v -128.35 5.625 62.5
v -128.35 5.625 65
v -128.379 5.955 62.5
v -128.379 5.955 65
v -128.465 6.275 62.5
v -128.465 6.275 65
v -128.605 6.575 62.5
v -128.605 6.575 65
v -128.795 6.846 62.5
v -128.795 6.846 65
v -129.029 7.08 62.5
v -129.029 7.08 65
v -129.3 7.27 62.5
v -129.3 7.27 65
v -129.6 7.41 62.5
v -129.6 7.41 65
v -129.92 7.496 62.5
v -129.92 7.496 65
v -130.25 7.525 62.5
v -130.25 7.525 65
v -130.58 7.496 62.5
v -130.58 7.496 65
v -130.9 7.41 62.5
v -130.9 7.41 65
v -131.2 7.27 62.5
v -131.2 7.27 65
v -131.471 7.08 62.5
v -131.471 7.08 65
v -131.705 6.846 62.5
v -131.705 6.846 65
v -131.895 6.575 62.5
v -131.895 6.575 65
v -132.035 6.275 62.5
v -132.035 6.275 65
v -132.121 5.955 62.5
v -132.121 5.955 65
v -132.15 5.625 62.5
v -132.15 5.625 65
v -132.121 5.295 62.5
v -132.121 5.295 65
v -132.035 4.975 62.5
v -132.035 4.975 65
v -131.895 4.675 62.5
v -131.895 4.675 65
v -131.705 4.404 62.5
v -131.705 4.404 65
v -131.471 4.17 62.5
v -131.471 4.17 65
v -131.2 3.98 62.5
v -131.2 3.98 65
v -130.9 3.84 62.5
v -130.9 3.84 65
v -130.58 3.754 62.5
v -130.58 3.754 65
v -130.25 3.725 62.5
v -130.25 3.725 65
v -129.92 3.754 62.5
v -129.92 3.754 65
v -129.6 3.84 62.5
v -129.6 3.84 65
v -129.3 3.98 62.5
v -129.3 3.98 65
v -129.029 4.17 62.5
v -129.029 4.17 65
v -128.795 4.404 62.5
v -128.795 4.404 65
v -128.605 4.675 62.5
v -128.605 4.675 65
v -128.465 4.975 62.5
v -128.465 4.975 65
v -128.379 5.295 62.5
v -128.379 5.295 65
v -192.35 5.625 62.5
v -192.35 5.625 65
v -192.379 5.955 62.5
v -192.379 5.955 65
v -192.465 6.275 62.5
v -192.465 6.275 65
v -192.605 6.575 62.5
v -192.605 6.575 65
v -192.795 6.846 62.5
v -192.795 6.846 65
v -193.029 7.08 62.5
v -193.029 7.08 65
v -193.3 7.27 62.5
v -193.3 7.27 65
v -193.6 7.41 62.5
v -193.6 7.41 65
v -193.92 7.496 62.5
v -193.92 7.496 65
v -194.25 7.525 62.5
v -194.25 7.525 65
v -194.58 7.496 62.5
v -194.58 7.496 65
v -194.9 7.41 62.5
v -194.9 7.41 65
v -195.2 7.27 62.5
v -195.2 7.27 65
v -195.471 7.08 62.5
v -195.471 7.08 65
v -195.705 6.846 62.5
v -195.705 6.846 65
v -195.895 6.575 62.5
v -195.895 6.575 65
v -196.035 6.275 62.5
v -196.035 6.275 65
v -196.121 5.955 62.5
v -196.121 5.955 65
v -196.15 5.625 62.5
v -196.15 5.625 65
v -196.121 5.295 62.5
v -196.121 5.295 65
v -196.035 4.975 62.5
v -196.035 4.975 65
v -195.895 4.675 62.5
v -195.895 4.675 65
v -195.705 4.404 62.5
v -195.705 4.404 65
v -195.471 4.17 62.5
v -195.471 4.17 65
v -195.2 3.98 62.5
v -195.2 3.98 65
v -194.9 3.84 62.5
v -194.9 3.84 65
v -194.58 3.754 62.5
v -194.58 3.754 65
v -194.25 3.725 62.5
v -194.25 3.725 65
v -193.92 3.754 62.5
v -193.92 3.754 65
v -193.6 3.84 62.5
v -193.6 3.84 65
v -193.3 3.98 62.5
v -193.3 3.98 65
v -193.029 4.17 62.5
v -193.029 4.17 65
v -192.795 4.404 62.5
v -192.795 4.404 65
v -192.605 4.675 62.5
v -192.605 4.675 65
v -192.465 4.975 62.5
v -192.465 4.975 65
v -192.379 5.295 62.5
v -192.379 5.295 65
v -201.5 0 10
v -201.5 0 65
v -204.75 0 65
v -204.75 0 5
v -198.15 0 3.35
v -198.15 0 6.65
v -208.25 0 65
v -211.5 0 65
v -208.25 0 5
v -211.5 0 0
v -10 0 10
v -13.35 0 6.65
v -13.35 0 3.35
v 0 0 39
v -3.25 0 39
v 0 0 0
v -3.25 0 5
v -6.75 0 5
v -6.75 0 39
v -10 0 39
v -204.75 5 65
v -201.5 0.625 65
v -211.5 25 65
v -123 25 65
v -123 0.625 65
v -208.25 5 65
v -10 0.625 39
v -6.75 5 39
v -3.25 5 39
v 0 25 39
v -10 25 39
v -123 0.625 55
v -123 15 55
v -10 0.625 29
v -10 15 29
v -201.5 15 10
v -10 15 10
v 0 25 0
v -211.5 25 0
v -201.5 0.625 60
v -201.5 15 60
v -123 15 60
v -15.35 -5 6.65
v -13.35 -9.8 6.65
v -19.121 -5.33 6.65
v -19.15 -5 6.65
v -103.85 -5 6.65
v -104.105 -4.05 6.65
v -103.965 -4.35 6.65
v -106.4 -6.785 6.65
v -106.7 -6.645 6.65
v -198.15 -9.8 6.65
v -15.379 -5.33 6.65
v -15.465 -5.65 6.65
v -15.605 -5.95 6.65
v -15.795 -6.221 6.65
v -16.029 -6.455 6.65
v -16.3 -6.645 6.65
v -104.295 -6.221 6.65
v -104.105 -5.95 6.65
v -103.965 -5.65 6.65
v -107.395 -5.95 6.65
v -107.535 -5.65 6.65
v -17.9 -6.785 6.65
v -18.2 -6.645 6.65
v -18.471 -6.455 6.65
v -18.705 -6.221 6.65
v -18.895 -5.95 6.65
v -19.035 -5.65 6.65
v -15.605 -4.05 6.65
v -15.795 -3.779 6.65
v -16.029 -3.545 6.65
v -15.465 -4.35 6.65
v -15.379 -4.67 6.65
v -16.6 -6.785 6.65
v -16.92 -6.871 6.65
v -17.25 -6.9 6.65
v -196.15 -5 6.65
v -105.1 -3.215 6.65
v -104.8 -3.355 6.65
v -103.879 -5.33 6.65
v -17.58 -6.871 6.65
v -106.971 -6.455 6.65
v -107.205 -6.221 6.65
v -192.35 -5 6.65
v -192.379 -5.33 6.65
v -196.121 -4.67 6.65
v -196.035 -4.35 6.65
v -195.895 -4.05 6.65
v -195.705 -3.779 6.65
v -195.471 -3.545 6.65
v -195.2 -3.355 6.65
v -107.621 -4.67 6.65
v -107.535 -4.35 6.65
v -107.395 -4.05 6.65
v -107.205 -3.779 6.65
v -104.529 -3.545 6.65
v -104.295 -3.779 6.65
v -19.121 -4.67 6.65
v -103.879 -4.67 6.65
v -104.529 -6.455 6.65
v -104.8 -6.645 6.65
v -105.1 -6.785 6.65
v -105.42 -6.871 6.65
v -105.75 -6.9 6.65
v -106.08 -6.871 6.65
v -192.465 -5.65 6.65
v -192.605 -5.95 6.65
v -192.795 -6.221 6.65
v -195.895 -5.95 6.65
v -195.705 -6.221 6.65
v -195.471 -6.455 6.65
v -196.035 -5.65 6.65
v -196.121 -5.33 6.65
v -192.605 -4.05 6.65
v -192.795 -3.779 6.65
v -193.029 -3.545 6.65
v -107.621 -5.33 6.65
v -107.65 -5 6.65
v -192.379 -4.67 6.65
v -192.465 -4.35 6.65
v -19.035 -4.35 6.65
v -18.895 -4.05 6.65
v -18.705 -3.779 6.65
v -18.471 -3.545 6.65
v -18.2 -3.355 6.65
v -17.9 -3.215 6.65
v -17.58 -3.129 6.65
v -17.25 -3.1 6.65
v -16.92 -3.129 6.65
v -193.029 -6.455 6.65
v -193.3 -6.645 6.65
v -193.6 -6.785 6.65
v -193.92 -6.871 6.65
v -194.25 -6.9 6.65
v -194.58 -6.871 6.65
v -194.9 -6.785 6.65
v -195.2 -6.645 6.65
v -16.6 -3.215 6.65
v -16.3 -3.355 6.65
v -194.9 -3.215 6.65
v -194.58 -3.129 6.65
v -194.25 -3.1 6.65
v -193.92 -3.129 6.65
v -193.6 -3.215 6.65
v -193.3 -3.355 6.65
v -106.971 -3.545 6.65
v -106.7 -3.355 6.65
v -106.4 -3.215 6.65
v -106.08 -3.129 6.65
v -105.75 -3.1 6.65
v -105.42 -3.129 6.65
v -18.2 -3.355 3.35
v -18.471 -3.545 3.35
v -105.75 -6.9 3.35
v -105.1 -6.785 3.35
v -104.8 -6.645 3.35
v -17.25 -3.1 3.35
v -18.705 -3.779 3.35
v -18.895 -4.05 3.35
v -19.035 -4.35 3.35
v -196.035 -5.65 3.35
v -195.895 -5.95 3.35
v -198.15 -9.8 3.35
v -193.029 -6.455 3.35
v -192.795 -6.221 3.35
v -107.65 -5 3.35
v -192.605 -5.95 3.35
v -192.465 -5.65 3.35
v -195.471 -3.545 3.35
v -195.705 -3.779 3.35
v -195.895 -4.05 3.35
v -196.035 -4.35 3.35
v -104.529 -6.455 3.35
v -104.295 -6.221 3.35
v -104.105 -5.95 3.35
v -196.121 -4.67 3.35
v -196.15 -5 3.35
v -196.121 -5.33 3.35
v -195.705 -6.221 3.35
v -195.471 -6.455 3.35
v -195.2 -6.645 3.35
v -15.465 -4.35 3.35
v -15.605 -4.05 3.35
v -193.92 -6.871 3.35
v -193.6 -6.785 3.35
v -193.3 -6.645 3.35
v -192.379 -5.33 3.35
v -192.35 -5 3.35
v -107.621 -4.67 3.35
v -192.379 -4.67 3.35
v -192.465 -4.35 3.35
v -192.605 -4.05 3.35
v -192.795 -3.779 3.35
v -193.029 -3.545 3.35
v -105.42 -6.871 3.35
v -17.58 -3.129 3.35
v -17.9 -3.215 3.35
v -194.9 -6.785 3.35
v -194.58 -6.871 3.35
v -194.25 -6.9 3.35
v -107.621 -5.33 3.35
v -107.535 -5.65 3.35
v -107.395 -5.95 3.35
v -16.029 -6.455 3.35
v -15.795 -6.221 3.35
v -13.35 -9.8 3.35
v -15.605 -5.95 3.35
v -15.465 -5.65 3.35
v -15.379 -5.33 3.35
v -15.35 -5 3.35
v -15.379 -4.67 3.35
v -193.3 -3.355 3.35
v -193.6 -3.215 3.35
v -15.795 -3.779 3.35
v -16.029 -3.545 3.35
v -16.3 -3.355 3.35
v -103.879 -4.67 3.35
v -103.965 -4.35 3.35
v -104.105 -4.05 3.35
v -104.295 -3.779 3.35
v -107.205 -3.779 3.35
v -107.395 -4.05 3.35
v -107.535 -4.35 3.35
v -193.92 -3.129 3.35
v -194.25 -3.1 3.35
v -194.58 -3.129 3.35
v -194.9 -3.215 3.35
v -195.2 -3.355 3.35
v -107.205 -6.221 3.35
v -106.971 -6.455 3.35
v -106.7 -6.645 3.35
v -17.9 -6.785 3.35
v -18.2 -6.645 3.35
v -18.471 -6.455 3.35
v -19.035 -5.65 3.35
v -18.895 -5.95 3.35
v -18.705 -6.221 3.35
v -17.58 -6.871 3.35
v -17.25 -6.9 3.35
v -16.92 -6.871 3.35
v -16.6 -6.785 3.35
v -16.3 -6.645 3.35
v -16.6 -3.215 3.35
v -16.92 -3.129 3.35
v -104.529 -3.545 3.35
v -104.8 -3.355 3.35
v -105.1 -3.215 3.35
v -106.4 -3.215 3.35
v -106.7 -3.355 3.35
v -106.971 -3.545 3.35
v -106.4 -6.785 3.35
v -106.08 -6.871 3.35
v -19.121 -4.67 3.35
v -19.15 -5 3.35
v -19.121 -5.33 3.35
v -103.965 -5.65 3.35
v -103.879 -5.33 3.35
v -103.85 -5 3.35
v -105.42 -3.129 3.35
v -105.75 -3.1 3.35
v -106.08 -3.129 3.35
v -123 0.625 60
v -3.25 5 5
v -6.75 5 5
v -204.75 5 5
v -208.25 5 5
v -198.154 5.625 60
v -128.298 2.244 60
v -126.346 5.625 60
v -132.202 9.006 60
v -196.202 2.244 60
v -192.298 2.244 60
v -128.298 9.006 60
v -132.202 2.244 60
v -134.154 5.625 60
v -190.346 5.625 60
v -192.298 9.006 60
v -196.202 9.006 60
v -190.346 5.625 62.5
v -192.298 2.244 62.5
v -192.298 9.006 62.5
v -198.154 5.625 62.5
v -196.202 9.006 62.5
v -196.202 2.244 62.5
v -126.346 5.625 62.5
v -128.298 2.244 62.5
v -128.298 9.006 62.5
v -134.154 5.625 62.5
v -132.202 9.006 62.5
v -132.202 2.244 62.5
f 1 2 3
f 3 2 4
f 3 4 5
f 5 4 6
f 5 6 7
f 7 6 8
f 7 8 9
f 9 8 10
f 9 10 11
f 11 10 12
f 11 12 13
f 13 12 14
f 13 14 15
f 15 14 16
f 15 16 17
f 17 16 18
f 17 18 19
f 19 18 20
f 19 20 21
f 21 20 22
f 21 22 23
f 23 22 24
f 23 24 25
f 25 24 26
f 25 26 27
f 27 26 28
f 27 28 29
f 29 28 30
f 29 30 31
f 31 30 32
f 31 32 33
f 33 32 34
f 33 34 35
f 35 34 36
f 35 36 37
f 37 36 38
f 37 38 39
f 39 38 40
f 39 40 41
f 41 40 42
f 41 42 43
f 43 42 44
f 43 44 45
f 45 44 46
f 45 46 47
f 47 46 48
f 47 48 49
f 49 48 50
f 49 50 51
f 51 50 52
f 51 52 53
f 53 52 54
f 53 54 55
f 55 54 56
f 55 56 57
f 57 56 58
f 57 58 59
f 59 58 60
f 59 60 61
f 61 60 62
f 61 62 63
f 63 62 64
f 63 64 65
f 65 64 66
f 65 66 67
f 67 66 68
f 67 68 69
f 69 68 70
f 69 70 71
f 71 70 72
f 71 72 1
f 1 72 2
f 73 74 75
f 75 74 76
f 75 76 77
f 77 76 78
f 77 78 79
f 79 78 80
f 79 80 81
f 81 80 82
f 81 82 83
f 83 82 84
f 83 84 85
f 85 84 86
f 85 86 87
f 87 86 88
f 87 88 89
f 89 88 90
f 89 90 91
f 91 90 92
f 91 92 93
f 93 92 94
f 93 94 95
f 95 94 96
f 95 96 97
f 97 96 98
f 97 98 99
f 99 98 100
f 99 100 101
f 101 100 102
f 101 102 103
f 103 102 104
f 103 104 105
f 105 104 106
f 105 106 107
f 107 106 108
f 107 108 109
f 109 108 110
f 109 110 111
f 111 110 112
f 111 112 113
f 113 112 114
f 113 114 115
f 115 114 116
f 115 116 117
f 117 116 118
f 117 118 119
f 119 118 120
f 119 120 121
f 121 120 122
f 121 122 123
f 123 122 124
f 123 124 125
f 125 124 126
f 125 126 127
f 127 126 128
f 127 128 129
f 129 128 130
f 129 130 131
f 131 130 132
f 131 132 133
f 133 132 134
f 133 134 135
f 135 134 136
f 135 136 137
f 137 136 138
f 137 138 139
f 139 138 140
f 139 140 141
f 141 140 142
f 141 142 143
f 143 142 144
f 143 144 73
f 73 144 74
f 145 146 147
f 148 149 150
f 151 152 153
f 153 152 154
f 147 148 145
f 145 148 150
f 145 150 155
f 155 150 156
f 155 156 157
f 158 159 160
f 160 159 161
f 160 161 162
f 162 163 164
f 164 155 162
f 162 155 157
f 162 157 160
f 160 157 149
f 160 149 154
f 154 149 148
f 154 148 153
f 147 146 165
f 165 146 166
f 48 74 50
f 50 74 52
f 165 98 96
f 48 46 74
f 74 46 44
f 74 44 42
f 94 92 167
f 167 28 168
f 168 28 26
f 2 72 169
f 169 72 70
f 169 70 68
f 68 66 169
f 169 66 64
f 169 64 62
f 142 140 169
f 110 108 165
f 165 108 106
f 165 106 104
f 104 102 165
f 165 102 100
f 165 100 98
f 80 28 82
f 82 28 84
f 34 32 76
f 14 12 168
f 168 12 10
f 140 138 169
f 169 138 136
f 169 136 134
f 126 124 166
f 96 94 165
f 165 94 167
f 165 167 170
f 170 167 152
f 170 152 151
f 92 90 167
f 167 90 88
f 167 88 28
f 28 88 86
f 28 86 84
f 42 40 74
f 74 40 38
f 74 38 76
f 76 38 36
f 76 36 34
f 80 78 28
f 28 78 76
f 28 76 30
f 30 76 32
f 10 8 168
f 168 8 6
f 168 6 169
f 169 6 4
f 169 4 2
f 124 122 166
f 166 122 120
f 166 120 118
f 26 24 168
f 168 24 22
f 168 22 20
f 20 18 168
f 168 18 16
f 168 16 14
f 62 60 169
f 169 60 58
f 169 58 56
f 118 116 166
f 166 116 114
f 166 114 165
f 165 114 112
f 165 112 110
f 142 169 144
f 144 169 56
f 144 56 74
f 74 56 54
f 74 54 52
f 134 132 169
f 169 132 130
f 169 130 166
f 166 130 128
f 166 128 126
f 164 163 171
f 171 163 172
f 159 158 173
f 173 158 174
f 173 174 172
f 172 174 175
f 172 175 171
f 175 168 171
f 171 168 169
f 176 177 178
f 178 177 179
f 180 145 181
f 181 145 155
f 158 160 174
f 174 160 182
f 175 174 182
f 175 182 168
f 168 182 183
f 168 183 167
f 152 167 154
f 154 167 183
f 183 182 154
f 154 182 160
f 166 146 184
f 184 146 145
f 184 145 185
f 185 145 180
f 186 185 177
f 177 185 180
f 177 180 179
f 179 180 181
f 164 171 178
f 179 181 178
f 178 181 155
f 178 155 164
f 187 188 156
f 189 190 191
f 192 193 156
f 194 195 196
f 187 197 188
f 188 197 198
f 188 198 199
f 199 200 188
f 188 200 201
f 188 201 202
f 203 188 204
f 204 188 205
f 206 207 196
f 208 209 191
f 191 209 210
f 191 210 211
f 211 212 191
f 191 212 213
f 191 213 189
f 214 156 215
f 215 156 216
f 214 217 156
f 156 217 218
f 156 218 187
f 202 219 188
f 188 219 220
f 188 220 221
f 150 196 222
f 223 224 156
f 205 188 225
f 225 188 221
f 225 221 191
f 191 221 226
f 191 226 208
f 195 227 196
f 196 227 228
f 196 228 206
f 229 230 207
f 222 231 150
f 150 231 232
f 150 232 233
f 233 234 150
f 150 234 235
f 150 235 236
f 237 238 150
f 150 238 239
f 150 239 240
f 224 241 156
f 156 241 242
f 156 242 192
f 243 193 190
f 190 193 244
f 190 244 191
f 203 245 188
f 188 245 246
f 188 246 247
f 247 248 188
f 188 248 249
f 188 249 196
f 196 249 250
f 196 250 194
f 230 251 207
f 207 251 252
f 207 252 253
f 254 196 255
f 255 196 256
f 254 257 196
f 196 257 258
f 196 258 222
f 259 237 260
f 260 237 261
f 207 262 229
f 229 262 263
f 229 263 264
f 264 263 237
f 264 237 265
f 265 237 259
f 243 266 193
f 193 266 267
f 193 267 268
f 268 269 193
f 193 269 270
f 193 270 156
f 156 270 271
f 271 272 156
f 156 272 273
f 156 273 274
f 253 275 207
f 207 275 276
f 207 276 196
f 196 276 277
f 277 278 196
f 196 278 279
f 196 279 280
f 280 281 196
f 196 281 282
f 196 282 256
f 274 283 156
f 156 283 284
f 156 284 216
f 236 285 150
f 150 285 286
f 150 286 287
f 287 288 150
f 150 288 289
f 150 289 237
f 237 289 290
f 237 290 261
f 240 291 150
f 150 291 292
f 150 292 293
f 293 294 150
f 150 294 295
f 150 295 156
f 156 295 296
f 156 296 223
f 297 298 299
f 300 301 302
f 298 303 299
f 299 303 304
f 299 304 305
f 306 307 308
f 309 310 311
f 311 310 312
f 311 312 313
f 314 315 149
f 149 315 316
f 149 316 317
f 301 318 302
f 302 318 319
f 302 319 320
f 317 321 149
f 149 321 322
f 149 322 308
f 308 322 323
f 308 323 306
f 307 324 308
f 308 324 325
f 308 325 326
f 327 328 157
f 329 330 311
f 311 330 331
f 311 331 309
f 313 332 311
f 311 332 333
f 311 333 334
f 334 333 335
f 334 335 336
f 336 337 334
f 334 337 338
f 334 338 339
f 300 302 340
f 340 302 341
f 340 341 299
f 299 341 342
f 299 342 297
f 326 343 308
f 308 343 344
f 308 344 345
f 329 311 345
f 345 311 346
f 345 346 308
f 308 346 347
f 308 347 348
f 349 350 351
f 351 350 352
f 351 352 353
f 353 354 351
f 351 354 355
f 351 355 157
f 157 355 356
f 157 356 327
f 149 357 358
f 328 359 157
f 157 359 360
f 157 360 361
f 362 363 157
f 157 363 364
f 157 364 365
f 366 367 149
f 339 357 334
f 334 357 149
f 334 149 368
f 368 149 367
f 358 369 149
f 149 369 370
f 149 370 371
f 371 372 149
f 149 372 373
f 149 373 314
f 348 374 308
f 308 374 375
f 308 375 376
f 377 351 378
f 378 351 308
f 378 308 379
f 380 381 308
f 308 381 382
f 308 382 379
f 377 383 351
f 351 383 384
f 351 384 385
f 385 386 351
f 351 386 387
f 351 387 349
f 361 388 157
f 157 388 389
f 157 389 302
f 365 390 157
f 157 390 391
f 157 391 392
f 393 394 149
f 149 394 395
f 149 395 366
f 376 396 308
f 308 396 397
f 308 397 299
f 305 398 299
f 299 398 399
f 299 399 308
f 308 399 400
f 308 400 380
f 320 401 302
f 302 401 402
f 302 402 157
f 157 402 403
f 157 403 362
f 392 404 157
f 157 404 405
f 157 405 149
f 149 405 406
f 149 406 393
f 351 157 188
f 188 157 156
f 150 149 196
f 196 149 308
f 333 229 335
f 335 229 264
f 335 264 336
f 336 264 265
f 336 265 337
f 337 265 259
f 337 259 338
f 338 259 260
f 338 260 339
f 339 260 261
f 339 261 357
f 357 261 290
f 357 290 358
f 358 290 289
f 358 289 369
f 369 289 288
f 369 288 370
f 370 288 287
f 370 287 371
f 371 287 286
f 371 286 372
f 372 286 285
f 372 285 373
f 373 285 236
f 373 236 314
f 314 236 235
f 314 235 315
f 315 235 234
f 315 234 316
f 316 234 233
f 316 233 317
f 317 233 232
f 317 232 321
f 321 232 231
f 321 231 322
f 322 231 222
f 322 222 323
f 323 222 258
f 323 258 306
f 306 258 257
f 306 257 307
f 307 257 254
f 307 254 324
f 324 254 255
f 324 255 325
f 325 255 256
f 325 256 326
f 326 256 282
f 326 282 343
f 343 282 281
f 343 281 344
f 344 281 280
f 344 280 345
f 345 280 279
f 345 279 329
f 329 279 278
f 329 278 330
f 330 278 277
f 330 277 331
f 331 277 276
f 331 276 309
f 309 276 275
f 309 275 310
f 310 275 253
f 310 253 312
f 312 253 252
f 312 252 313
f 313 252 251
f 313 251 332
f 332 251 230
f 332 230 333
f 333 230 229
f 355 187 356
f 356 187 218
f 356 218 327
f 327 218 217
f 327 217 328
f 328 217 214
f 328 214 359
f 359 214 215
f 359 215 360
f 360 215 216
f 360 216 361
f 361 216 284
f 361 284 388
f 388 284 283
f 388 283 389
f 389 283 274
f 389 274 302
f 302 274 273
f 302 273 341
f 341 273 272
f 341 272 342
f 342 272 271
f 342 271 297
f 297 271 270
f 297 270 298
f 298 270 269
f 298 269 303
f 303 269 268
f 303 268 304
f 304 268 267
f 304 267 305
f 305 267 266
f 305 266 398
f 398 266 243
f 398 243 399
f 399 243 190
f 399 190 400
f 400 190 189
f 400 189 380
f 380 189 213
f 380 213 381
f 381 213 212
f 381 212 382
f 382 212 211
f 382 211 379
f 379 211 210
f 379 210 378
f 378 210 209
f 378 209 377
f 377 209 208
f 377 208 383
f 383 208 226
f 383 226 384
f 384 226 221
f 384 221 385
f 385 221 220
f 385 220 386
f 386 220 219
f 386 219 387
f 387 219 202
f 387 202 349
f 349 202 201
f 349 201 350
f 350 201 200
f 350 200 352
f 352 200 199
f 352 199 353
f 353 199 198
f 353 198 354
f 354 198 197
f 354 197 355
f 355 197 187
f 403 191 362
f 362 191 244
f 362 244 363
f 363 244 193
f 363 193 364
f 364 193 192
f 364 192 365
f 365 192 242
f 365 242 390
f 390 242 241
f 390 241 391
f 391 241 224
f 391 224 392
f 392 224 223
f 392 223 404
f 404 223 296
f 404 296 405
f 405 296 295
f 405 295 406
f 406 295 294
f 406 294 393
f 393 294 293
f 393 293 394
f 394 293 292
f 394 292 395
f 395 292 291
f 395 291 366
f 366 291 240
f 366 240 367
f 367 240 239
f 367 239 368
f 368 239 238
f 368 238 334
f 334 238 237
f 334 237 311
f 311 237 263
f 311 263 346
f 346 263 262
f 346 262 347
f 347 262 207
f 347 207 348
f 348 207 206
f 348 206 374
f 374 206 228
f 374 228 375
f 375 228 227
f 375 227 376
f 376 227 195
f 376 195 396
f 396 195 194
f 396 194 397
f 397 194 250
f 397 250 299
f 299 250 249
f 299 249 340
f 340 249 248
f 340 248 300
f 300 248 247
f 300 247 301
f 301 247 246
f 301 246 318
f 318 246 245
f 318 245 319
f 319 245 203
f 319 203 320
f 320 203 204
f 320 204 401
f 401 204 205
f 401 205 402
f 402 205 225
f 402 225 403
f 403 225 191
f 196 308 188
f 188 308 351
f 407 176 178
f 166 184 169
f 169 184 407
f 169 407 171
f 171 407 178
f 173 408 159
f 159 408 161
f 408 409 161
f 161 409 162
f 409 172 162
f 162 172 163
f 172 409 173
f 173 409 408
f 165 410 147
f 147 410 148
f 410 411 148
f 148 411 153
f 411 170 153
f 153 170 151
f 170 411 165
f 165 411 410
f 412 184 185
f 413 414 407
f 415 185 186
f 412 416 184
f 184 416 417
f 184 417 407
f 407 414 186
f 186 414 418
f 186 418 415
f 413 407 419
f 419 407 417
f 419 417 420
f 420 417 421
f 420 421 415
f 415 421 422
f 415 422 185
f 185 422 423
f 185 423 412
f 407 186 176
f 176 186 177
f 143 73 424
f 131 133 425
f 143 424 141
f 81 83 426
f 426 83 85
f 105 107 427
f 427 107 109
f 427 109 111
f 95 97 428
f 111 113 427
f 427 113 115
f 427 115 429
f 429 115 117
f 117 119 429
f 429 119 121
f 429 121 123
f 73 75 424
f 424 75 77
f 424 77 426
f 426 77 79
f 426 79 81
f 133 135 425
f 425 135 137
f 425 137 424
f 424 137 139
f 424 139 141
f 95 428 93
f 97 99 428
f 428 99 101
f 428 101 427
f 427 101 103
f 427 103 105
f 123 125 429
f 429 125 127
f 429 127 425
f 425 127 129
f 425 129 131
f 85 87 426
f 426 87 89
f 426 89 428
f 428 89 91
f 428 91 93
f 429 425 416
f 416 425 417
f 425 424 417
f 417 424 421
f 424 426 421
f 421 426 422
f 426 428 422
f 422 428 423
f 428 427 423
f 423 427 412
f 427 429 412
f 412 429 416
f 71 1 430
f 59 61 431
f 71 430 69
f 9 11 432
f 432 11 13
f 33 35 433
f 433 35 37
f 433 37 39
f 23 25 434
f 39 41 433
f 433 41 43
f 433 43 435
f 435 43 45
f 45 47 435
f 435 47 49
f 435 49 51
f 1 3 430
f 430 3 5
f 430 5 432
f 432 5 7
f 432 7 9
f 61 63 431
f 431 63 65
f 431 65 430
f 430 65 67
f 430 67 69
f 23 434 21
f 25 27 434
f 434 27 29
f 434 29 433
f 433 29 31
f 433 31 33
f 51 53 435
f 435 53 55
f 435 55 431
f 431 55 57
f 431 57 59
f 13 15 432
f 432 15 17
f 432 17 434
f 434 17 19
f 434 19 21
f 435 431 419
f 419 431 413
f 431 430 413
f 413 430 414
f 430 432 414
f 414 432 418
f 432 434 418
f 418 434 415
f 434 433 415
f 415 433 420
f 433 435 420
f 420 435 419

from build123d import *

# Parameters (mm, degrees)
SKETCH1_W           = 25
SKETCH1_H           = 211.5
BOSS_EXTRUDE1_DEPTH = 10
SKETCH2_W           = 10
SKETCH2_H           = 15
SKETCH2_H_2         = 10
SKETCH2_W_2         = 191.5
BOSS_EXTRUDE2_DEPTH = 45
SKETCH3_3_W         = 185
SKETCH3_3_H         = 3.5
BOSS_EXTRUDE4_DEPTH = 10
CUT_EXTRUDE11_REACH = 222.795
SKETCH15_R          = 1.9
LPATTERN2_COUNT     = 3
LPATTERN2_PITCH     = 88.5
SKETCH16_W          = 185
SKETCH16_H          = 3.5
SKETCH16_W_2        = 184.8
SKETCH16_H_2        = 3.3
CUT_EXTRUDE12_DEPTH = 10
CUT_EXTRUDE13_REACH = 222.821
SKETCH17_W          = 184.8
SKETCH17_H          = 0.2
CUT_EXTRUDE3_REACH  = 225.983
BOSS_EXTRUDE3_REACH = 224.671
CUT_EXTRUDE4_REACH  = 224.671
SKETCH10_W          = 78.5
SKETCH10_H          = 0.625
SKETCH10_W_2        = 113
SKETCH4_W           = 3.5
SKETCH4_H           = 34
CUT_EXTRUDE2_DEPTH  = 5
CUT_EXTRUDE5_DEPTH  = 5
SKETCH12_W          = 78.5
SKETCH12_H          = 5
CUT_EXTRUDE6_DEPTH  = 14.375
CUT_EXTRUDE7_REACH  = 224.671
SKETCH9_R           = 1.9
CUT_EXTRUDE9_DEPTH  = 2.5
LPATTERN1_COUNT     = 2
LPATTERN1_PITCH     = 64


with BuildPart() as part:
    # Sketch1 → Boss-Extrude1 (new body)
    with BuildSketch(Plane(origin=(0, 0, 0), x_dir=(0, 1, 0), z_dir=(0, 0, 1))):
        with Locations((12.5, 105.75)):
            Rectangle(SKETCH1_W, SKETCH1_H)
    boss_extrude1 = extrude(amount=BOSS_EXTRUDE1_DEPTH)

    # Sketch2 → Boss-Extrude2 (add)
    with BuildSketch(Plane.XY.offset(10)):
        with Locations((-5, 7.5)):
            Rectangle(SKETCH2_W, SKETCH2_H)
        with Locations((-5, 20)):
            Rectangle(SKETCH2_W, SKETCH2_H_2)
        with Locations((-105.75, 20)):
            Rectangle(SKETCH2_W_2, SKETCH2_H_2)
        with Locations((-206.5, 20)):
            Rectangle(SKETCH2_W, SKETCH2_H_2)
        with Locations((-206.5, 7.5)):
            Rectangle(SKETCH2_W, SKETCH2_H)
    extrude(amount=BOSS_EXTRUDE2_DEPTH)

    # Mirror1: Boss-Extrude1 across plane
    add(boss_extrude1.mirror(Plane.XY.offset(32.5)))

    # Sketch3<3> → Boss-Extrude4 (add)
    with BuildSketch(Plane.XZ):
        with Locations((-105.75, 5)):
            Rectangle(SKETCH3_3_W, SKETCH3_3_H)
    extrude(amount=BOSS_EXTRUDE4_DEPTH)

    # Sketch15 → Cut-Extrude11 (cut, up to next)
    with BuildSketch(Plane(origin=(0, 0, 6.75), x_dir=(-1, 0, 0), z_dir=(0, 0, 1)), mode=Mode.PRIVATE) as cut_extrude11_sk1:
        with Locations(Location((194.25, 5, 0), (0, 0, 180))):
            Circle(SKETCH15_R)
    cut_extrude11_tool1 = extrude(cut_extrude11_sk1.sketch, amount=-CUT_EXTRUDE11_REACH, mode=Mode.PRIVATE) & part.part
    cut_extrude11 = cut_extrude11_tool1.solids().sort_by_distance((-194.25, -5, 6.75))[0]
    add(cut_extrude11, mode=Mode.SUBTRACT)

    # LPattern2: Cut-Extrude11 ×3
    with Locations(*[(i * LPATTERN2_PITCH, 0, 0) for i in range(1, LPATTERN2_COUNT)]):
        add(cut_extrude11, mode=Mode.SUBTRACT)

    # Sketch16 → Cut-Extrude12 (cut)
    with BuildSketch(Plane.XZ.offset(10)):
        with Locations((-105.75, 5)):
            Rectangle(SKETCH16_W, SKETCH16_H)
        with Locations((-105.75, 5)):
            Rectangle(SKETCH16_W_2, SKETCH16_H_2, mode=Mode.SUBTRACT)
    extrude(amount=-CUT_EXTRUDE12_DEPTH, mode=Mode.SUBTRACT)

    # Sketch17 → Cut-Extrude13 (cut, up to next)
    with BuildSketch(Plane(origin=(0, 0, 6.65), x_dir=(-1, 0, 0), z_dir=(0, 0, 1)), mode=Mode.PRIVATE) as cut_extrude13_sk1:
        with Locations((105.75, 9.9)):
            Rectangle(SKETCH17_W, SKETCH17_H)
    cut_extrude13_tool1 = extrude(cut_extrude13_sk1.sketch, amount=-CUT_EXTRUDE13_REACH, mode=Mode.PRIVATE) & part.part
    add(cut_extrude13_tool1.solids().sort_by_distance((-105.75, -9.9, 6.65))[0], mode=Mode.SUBTRACT)

    # Sketch5 → Cut-Extrude3 (cut, up to next)
    with BuildSketch(Plane(origin=(0, 25, 0), x_dir=(-1, 0, 0), z_dir=(0, 1, 0)), mode=Mode.PRIVATE) as cut_extrude3_sk1:
        Polygon((0, 65), (0, 39), (10, 39), (123, 65), align=None)
    cut_extrude3_tool1 = extrude(cut_extrude3_sk1.sketch, amount=-CUT_EXTRUDE3_REACH, mode=Mode.PRIVATE) & part.part
    add(cut_extrude3_tool1.solids().sort_by_distance((-41.250627, 25, 55.681704))[0], mode=Mode.SUBTRACT)

    # Sketch7 → Boss-Extrude3 (add, up to next)
    with BuildSketch(Plane.XZ, mode=Mode.PRIVATE) as boss_extrude3_sk1:
        Polygon((-10, 39), (-123, 65), (-123, 55), (-10, 29), align=None)
    boss_extrude3_tool1 = extrude(boss_extrude3_sk1.sketch, amount=-BOSS_EXTRUDE3_REACH, mode=Mode.PRIVATE) - part.part
    add(boss_extrude3_tool1.solids().sort_by_distance((-66.5, 0, 47))[0])

    # Sketch10 → Cut-Extrude4 (cut, up to next)
    with BuildSketch(Plane.XY.offset(65), mode=Mode.PRIVATE) as cut_extrude4_sk1:
        with Locations((-162.25, 0.3125)):
            Rectangle(SKETCH10_W, SKETCH10_H)
    cut_extrude4_tool1 = extrude(cut_extrude4_sk1.sketch, amount=-CUT_EXTRUDE4_REACH, mode=Mode.PRIVATE) & part.part
    # Sketch10 → Cut-Extrude4 (cut, up to next)
    with BuildSketch(Plane.XY.offset(65), mode=Mode.PRIVATE) as cut_extrude4_sk2:
        with Locations((-66.5, 0.3125)):
            Rectangle(SKETCH10_W_2, SKETCH10_H)
    cut_extrude4_tool2 = extrude(cut_extrude4_sk2.sketch, amount=-CUT_EXTRUDE4_REACH, mode=Mode.PRIVATE) & part.part
    add(cut_extrude4_tool1.solids().sort_by_distance((-162.25, 0.3125, 65))[0], mode=Mode.SUBTRACT)
    add(cut_extrude4_tool2.solids().sort_by_distance((-66.5, 0.3125, 65))[0], mode=Mode.SUBTRACT)

    # Sketch4 → Cut-Extrude2 (cut)
    with BuildSketch(Plane.XZ):
        with Locations((-5, 22)):
            Rectangle(SKETCH4_W, SKETCH4_H)
    extrude(amount=-CUT_EXTRUDE2_DEPTH, mode=Mode.SUBTRACT)

    # Sketch11 → Cut-Extrude5 (cut)
    with BuildSketch(Plane.XZ):
        Polygon((-208.25, 15), (-208.25, 5), (-204.75, 5), (-204.75, 15), (-204.75, 65), (-208.25, 65), align=None)
    extrude(amount=-CUT_EXTRUDE5_DEPTH, mode=Mode.SUBTRACT)

    # Sketch12 → Cut-Extrude6 (cut)
    with BuildSketch(Plane.XZ.offset(-0.625)):
        with Locations((-162.25, 57.5)):
            Rectangle(SKETCH12_W, SKETCH12_H)
    extrude(amount=-CUT_EXTRUDE6_DEPTH, mode=Mode.SUBTRACT)

    # Sketch9 → Cut-Extrude7 (cut, up to next)
    with BuildSketch(Plane.XY.offset(65), mode=Mode.PRIVATE) as cut_extrude7_sk1:
        with Locations((-194.25, 5.625)):
            Circle(SKETCH9_R)
    cut_extrude7_tool1 = extrude(cut_extrude7_sk1.sketch, amount=-CUT_EXTRUDE7_REACH, mode=Mode.PRIVATE) & part.part
    cut_extrude7 = cut_extrude7_tool1.solids().sort_by_distance((-194.25, 5.625, 65))[0]
    add(cut_extrude7, mode=Mode.SUBTRACT)

    # Sketch13 → Cut-Extrude9 (cut)
    with BuildSketch(Plane(origin=(0, 0, 60), x_dir=(1, 0, 0), z_dir=(0, 0, -1))):
        Polygon((-192.297927406, -9.006088913), (-190.345854812, -5.625), (-192.297927406, -2.243911087), (-196.202072594, -2.243911087), (-198.154145188, -5.625), (-196.202072594, -9.006088913), align=None)
    cut_extrude9 = extrude(amount=-CUT_EXTRUDE9_DEPTH, mode=Mode.SUBTRACT)

    # LPattern1: Cut-Extrude7, Cut-Extrude9 ×2
    with Locations(*[(i * LPATTERN1_PITCH, 0, 0) for i in range(1, LPATTERN1_COUNT)]):
        add(cut_extrude7, mode=Mode.SUBTRACT)
        add(cut_extrude9, mode=Mode.SUBTRACT)


solid = part.part
